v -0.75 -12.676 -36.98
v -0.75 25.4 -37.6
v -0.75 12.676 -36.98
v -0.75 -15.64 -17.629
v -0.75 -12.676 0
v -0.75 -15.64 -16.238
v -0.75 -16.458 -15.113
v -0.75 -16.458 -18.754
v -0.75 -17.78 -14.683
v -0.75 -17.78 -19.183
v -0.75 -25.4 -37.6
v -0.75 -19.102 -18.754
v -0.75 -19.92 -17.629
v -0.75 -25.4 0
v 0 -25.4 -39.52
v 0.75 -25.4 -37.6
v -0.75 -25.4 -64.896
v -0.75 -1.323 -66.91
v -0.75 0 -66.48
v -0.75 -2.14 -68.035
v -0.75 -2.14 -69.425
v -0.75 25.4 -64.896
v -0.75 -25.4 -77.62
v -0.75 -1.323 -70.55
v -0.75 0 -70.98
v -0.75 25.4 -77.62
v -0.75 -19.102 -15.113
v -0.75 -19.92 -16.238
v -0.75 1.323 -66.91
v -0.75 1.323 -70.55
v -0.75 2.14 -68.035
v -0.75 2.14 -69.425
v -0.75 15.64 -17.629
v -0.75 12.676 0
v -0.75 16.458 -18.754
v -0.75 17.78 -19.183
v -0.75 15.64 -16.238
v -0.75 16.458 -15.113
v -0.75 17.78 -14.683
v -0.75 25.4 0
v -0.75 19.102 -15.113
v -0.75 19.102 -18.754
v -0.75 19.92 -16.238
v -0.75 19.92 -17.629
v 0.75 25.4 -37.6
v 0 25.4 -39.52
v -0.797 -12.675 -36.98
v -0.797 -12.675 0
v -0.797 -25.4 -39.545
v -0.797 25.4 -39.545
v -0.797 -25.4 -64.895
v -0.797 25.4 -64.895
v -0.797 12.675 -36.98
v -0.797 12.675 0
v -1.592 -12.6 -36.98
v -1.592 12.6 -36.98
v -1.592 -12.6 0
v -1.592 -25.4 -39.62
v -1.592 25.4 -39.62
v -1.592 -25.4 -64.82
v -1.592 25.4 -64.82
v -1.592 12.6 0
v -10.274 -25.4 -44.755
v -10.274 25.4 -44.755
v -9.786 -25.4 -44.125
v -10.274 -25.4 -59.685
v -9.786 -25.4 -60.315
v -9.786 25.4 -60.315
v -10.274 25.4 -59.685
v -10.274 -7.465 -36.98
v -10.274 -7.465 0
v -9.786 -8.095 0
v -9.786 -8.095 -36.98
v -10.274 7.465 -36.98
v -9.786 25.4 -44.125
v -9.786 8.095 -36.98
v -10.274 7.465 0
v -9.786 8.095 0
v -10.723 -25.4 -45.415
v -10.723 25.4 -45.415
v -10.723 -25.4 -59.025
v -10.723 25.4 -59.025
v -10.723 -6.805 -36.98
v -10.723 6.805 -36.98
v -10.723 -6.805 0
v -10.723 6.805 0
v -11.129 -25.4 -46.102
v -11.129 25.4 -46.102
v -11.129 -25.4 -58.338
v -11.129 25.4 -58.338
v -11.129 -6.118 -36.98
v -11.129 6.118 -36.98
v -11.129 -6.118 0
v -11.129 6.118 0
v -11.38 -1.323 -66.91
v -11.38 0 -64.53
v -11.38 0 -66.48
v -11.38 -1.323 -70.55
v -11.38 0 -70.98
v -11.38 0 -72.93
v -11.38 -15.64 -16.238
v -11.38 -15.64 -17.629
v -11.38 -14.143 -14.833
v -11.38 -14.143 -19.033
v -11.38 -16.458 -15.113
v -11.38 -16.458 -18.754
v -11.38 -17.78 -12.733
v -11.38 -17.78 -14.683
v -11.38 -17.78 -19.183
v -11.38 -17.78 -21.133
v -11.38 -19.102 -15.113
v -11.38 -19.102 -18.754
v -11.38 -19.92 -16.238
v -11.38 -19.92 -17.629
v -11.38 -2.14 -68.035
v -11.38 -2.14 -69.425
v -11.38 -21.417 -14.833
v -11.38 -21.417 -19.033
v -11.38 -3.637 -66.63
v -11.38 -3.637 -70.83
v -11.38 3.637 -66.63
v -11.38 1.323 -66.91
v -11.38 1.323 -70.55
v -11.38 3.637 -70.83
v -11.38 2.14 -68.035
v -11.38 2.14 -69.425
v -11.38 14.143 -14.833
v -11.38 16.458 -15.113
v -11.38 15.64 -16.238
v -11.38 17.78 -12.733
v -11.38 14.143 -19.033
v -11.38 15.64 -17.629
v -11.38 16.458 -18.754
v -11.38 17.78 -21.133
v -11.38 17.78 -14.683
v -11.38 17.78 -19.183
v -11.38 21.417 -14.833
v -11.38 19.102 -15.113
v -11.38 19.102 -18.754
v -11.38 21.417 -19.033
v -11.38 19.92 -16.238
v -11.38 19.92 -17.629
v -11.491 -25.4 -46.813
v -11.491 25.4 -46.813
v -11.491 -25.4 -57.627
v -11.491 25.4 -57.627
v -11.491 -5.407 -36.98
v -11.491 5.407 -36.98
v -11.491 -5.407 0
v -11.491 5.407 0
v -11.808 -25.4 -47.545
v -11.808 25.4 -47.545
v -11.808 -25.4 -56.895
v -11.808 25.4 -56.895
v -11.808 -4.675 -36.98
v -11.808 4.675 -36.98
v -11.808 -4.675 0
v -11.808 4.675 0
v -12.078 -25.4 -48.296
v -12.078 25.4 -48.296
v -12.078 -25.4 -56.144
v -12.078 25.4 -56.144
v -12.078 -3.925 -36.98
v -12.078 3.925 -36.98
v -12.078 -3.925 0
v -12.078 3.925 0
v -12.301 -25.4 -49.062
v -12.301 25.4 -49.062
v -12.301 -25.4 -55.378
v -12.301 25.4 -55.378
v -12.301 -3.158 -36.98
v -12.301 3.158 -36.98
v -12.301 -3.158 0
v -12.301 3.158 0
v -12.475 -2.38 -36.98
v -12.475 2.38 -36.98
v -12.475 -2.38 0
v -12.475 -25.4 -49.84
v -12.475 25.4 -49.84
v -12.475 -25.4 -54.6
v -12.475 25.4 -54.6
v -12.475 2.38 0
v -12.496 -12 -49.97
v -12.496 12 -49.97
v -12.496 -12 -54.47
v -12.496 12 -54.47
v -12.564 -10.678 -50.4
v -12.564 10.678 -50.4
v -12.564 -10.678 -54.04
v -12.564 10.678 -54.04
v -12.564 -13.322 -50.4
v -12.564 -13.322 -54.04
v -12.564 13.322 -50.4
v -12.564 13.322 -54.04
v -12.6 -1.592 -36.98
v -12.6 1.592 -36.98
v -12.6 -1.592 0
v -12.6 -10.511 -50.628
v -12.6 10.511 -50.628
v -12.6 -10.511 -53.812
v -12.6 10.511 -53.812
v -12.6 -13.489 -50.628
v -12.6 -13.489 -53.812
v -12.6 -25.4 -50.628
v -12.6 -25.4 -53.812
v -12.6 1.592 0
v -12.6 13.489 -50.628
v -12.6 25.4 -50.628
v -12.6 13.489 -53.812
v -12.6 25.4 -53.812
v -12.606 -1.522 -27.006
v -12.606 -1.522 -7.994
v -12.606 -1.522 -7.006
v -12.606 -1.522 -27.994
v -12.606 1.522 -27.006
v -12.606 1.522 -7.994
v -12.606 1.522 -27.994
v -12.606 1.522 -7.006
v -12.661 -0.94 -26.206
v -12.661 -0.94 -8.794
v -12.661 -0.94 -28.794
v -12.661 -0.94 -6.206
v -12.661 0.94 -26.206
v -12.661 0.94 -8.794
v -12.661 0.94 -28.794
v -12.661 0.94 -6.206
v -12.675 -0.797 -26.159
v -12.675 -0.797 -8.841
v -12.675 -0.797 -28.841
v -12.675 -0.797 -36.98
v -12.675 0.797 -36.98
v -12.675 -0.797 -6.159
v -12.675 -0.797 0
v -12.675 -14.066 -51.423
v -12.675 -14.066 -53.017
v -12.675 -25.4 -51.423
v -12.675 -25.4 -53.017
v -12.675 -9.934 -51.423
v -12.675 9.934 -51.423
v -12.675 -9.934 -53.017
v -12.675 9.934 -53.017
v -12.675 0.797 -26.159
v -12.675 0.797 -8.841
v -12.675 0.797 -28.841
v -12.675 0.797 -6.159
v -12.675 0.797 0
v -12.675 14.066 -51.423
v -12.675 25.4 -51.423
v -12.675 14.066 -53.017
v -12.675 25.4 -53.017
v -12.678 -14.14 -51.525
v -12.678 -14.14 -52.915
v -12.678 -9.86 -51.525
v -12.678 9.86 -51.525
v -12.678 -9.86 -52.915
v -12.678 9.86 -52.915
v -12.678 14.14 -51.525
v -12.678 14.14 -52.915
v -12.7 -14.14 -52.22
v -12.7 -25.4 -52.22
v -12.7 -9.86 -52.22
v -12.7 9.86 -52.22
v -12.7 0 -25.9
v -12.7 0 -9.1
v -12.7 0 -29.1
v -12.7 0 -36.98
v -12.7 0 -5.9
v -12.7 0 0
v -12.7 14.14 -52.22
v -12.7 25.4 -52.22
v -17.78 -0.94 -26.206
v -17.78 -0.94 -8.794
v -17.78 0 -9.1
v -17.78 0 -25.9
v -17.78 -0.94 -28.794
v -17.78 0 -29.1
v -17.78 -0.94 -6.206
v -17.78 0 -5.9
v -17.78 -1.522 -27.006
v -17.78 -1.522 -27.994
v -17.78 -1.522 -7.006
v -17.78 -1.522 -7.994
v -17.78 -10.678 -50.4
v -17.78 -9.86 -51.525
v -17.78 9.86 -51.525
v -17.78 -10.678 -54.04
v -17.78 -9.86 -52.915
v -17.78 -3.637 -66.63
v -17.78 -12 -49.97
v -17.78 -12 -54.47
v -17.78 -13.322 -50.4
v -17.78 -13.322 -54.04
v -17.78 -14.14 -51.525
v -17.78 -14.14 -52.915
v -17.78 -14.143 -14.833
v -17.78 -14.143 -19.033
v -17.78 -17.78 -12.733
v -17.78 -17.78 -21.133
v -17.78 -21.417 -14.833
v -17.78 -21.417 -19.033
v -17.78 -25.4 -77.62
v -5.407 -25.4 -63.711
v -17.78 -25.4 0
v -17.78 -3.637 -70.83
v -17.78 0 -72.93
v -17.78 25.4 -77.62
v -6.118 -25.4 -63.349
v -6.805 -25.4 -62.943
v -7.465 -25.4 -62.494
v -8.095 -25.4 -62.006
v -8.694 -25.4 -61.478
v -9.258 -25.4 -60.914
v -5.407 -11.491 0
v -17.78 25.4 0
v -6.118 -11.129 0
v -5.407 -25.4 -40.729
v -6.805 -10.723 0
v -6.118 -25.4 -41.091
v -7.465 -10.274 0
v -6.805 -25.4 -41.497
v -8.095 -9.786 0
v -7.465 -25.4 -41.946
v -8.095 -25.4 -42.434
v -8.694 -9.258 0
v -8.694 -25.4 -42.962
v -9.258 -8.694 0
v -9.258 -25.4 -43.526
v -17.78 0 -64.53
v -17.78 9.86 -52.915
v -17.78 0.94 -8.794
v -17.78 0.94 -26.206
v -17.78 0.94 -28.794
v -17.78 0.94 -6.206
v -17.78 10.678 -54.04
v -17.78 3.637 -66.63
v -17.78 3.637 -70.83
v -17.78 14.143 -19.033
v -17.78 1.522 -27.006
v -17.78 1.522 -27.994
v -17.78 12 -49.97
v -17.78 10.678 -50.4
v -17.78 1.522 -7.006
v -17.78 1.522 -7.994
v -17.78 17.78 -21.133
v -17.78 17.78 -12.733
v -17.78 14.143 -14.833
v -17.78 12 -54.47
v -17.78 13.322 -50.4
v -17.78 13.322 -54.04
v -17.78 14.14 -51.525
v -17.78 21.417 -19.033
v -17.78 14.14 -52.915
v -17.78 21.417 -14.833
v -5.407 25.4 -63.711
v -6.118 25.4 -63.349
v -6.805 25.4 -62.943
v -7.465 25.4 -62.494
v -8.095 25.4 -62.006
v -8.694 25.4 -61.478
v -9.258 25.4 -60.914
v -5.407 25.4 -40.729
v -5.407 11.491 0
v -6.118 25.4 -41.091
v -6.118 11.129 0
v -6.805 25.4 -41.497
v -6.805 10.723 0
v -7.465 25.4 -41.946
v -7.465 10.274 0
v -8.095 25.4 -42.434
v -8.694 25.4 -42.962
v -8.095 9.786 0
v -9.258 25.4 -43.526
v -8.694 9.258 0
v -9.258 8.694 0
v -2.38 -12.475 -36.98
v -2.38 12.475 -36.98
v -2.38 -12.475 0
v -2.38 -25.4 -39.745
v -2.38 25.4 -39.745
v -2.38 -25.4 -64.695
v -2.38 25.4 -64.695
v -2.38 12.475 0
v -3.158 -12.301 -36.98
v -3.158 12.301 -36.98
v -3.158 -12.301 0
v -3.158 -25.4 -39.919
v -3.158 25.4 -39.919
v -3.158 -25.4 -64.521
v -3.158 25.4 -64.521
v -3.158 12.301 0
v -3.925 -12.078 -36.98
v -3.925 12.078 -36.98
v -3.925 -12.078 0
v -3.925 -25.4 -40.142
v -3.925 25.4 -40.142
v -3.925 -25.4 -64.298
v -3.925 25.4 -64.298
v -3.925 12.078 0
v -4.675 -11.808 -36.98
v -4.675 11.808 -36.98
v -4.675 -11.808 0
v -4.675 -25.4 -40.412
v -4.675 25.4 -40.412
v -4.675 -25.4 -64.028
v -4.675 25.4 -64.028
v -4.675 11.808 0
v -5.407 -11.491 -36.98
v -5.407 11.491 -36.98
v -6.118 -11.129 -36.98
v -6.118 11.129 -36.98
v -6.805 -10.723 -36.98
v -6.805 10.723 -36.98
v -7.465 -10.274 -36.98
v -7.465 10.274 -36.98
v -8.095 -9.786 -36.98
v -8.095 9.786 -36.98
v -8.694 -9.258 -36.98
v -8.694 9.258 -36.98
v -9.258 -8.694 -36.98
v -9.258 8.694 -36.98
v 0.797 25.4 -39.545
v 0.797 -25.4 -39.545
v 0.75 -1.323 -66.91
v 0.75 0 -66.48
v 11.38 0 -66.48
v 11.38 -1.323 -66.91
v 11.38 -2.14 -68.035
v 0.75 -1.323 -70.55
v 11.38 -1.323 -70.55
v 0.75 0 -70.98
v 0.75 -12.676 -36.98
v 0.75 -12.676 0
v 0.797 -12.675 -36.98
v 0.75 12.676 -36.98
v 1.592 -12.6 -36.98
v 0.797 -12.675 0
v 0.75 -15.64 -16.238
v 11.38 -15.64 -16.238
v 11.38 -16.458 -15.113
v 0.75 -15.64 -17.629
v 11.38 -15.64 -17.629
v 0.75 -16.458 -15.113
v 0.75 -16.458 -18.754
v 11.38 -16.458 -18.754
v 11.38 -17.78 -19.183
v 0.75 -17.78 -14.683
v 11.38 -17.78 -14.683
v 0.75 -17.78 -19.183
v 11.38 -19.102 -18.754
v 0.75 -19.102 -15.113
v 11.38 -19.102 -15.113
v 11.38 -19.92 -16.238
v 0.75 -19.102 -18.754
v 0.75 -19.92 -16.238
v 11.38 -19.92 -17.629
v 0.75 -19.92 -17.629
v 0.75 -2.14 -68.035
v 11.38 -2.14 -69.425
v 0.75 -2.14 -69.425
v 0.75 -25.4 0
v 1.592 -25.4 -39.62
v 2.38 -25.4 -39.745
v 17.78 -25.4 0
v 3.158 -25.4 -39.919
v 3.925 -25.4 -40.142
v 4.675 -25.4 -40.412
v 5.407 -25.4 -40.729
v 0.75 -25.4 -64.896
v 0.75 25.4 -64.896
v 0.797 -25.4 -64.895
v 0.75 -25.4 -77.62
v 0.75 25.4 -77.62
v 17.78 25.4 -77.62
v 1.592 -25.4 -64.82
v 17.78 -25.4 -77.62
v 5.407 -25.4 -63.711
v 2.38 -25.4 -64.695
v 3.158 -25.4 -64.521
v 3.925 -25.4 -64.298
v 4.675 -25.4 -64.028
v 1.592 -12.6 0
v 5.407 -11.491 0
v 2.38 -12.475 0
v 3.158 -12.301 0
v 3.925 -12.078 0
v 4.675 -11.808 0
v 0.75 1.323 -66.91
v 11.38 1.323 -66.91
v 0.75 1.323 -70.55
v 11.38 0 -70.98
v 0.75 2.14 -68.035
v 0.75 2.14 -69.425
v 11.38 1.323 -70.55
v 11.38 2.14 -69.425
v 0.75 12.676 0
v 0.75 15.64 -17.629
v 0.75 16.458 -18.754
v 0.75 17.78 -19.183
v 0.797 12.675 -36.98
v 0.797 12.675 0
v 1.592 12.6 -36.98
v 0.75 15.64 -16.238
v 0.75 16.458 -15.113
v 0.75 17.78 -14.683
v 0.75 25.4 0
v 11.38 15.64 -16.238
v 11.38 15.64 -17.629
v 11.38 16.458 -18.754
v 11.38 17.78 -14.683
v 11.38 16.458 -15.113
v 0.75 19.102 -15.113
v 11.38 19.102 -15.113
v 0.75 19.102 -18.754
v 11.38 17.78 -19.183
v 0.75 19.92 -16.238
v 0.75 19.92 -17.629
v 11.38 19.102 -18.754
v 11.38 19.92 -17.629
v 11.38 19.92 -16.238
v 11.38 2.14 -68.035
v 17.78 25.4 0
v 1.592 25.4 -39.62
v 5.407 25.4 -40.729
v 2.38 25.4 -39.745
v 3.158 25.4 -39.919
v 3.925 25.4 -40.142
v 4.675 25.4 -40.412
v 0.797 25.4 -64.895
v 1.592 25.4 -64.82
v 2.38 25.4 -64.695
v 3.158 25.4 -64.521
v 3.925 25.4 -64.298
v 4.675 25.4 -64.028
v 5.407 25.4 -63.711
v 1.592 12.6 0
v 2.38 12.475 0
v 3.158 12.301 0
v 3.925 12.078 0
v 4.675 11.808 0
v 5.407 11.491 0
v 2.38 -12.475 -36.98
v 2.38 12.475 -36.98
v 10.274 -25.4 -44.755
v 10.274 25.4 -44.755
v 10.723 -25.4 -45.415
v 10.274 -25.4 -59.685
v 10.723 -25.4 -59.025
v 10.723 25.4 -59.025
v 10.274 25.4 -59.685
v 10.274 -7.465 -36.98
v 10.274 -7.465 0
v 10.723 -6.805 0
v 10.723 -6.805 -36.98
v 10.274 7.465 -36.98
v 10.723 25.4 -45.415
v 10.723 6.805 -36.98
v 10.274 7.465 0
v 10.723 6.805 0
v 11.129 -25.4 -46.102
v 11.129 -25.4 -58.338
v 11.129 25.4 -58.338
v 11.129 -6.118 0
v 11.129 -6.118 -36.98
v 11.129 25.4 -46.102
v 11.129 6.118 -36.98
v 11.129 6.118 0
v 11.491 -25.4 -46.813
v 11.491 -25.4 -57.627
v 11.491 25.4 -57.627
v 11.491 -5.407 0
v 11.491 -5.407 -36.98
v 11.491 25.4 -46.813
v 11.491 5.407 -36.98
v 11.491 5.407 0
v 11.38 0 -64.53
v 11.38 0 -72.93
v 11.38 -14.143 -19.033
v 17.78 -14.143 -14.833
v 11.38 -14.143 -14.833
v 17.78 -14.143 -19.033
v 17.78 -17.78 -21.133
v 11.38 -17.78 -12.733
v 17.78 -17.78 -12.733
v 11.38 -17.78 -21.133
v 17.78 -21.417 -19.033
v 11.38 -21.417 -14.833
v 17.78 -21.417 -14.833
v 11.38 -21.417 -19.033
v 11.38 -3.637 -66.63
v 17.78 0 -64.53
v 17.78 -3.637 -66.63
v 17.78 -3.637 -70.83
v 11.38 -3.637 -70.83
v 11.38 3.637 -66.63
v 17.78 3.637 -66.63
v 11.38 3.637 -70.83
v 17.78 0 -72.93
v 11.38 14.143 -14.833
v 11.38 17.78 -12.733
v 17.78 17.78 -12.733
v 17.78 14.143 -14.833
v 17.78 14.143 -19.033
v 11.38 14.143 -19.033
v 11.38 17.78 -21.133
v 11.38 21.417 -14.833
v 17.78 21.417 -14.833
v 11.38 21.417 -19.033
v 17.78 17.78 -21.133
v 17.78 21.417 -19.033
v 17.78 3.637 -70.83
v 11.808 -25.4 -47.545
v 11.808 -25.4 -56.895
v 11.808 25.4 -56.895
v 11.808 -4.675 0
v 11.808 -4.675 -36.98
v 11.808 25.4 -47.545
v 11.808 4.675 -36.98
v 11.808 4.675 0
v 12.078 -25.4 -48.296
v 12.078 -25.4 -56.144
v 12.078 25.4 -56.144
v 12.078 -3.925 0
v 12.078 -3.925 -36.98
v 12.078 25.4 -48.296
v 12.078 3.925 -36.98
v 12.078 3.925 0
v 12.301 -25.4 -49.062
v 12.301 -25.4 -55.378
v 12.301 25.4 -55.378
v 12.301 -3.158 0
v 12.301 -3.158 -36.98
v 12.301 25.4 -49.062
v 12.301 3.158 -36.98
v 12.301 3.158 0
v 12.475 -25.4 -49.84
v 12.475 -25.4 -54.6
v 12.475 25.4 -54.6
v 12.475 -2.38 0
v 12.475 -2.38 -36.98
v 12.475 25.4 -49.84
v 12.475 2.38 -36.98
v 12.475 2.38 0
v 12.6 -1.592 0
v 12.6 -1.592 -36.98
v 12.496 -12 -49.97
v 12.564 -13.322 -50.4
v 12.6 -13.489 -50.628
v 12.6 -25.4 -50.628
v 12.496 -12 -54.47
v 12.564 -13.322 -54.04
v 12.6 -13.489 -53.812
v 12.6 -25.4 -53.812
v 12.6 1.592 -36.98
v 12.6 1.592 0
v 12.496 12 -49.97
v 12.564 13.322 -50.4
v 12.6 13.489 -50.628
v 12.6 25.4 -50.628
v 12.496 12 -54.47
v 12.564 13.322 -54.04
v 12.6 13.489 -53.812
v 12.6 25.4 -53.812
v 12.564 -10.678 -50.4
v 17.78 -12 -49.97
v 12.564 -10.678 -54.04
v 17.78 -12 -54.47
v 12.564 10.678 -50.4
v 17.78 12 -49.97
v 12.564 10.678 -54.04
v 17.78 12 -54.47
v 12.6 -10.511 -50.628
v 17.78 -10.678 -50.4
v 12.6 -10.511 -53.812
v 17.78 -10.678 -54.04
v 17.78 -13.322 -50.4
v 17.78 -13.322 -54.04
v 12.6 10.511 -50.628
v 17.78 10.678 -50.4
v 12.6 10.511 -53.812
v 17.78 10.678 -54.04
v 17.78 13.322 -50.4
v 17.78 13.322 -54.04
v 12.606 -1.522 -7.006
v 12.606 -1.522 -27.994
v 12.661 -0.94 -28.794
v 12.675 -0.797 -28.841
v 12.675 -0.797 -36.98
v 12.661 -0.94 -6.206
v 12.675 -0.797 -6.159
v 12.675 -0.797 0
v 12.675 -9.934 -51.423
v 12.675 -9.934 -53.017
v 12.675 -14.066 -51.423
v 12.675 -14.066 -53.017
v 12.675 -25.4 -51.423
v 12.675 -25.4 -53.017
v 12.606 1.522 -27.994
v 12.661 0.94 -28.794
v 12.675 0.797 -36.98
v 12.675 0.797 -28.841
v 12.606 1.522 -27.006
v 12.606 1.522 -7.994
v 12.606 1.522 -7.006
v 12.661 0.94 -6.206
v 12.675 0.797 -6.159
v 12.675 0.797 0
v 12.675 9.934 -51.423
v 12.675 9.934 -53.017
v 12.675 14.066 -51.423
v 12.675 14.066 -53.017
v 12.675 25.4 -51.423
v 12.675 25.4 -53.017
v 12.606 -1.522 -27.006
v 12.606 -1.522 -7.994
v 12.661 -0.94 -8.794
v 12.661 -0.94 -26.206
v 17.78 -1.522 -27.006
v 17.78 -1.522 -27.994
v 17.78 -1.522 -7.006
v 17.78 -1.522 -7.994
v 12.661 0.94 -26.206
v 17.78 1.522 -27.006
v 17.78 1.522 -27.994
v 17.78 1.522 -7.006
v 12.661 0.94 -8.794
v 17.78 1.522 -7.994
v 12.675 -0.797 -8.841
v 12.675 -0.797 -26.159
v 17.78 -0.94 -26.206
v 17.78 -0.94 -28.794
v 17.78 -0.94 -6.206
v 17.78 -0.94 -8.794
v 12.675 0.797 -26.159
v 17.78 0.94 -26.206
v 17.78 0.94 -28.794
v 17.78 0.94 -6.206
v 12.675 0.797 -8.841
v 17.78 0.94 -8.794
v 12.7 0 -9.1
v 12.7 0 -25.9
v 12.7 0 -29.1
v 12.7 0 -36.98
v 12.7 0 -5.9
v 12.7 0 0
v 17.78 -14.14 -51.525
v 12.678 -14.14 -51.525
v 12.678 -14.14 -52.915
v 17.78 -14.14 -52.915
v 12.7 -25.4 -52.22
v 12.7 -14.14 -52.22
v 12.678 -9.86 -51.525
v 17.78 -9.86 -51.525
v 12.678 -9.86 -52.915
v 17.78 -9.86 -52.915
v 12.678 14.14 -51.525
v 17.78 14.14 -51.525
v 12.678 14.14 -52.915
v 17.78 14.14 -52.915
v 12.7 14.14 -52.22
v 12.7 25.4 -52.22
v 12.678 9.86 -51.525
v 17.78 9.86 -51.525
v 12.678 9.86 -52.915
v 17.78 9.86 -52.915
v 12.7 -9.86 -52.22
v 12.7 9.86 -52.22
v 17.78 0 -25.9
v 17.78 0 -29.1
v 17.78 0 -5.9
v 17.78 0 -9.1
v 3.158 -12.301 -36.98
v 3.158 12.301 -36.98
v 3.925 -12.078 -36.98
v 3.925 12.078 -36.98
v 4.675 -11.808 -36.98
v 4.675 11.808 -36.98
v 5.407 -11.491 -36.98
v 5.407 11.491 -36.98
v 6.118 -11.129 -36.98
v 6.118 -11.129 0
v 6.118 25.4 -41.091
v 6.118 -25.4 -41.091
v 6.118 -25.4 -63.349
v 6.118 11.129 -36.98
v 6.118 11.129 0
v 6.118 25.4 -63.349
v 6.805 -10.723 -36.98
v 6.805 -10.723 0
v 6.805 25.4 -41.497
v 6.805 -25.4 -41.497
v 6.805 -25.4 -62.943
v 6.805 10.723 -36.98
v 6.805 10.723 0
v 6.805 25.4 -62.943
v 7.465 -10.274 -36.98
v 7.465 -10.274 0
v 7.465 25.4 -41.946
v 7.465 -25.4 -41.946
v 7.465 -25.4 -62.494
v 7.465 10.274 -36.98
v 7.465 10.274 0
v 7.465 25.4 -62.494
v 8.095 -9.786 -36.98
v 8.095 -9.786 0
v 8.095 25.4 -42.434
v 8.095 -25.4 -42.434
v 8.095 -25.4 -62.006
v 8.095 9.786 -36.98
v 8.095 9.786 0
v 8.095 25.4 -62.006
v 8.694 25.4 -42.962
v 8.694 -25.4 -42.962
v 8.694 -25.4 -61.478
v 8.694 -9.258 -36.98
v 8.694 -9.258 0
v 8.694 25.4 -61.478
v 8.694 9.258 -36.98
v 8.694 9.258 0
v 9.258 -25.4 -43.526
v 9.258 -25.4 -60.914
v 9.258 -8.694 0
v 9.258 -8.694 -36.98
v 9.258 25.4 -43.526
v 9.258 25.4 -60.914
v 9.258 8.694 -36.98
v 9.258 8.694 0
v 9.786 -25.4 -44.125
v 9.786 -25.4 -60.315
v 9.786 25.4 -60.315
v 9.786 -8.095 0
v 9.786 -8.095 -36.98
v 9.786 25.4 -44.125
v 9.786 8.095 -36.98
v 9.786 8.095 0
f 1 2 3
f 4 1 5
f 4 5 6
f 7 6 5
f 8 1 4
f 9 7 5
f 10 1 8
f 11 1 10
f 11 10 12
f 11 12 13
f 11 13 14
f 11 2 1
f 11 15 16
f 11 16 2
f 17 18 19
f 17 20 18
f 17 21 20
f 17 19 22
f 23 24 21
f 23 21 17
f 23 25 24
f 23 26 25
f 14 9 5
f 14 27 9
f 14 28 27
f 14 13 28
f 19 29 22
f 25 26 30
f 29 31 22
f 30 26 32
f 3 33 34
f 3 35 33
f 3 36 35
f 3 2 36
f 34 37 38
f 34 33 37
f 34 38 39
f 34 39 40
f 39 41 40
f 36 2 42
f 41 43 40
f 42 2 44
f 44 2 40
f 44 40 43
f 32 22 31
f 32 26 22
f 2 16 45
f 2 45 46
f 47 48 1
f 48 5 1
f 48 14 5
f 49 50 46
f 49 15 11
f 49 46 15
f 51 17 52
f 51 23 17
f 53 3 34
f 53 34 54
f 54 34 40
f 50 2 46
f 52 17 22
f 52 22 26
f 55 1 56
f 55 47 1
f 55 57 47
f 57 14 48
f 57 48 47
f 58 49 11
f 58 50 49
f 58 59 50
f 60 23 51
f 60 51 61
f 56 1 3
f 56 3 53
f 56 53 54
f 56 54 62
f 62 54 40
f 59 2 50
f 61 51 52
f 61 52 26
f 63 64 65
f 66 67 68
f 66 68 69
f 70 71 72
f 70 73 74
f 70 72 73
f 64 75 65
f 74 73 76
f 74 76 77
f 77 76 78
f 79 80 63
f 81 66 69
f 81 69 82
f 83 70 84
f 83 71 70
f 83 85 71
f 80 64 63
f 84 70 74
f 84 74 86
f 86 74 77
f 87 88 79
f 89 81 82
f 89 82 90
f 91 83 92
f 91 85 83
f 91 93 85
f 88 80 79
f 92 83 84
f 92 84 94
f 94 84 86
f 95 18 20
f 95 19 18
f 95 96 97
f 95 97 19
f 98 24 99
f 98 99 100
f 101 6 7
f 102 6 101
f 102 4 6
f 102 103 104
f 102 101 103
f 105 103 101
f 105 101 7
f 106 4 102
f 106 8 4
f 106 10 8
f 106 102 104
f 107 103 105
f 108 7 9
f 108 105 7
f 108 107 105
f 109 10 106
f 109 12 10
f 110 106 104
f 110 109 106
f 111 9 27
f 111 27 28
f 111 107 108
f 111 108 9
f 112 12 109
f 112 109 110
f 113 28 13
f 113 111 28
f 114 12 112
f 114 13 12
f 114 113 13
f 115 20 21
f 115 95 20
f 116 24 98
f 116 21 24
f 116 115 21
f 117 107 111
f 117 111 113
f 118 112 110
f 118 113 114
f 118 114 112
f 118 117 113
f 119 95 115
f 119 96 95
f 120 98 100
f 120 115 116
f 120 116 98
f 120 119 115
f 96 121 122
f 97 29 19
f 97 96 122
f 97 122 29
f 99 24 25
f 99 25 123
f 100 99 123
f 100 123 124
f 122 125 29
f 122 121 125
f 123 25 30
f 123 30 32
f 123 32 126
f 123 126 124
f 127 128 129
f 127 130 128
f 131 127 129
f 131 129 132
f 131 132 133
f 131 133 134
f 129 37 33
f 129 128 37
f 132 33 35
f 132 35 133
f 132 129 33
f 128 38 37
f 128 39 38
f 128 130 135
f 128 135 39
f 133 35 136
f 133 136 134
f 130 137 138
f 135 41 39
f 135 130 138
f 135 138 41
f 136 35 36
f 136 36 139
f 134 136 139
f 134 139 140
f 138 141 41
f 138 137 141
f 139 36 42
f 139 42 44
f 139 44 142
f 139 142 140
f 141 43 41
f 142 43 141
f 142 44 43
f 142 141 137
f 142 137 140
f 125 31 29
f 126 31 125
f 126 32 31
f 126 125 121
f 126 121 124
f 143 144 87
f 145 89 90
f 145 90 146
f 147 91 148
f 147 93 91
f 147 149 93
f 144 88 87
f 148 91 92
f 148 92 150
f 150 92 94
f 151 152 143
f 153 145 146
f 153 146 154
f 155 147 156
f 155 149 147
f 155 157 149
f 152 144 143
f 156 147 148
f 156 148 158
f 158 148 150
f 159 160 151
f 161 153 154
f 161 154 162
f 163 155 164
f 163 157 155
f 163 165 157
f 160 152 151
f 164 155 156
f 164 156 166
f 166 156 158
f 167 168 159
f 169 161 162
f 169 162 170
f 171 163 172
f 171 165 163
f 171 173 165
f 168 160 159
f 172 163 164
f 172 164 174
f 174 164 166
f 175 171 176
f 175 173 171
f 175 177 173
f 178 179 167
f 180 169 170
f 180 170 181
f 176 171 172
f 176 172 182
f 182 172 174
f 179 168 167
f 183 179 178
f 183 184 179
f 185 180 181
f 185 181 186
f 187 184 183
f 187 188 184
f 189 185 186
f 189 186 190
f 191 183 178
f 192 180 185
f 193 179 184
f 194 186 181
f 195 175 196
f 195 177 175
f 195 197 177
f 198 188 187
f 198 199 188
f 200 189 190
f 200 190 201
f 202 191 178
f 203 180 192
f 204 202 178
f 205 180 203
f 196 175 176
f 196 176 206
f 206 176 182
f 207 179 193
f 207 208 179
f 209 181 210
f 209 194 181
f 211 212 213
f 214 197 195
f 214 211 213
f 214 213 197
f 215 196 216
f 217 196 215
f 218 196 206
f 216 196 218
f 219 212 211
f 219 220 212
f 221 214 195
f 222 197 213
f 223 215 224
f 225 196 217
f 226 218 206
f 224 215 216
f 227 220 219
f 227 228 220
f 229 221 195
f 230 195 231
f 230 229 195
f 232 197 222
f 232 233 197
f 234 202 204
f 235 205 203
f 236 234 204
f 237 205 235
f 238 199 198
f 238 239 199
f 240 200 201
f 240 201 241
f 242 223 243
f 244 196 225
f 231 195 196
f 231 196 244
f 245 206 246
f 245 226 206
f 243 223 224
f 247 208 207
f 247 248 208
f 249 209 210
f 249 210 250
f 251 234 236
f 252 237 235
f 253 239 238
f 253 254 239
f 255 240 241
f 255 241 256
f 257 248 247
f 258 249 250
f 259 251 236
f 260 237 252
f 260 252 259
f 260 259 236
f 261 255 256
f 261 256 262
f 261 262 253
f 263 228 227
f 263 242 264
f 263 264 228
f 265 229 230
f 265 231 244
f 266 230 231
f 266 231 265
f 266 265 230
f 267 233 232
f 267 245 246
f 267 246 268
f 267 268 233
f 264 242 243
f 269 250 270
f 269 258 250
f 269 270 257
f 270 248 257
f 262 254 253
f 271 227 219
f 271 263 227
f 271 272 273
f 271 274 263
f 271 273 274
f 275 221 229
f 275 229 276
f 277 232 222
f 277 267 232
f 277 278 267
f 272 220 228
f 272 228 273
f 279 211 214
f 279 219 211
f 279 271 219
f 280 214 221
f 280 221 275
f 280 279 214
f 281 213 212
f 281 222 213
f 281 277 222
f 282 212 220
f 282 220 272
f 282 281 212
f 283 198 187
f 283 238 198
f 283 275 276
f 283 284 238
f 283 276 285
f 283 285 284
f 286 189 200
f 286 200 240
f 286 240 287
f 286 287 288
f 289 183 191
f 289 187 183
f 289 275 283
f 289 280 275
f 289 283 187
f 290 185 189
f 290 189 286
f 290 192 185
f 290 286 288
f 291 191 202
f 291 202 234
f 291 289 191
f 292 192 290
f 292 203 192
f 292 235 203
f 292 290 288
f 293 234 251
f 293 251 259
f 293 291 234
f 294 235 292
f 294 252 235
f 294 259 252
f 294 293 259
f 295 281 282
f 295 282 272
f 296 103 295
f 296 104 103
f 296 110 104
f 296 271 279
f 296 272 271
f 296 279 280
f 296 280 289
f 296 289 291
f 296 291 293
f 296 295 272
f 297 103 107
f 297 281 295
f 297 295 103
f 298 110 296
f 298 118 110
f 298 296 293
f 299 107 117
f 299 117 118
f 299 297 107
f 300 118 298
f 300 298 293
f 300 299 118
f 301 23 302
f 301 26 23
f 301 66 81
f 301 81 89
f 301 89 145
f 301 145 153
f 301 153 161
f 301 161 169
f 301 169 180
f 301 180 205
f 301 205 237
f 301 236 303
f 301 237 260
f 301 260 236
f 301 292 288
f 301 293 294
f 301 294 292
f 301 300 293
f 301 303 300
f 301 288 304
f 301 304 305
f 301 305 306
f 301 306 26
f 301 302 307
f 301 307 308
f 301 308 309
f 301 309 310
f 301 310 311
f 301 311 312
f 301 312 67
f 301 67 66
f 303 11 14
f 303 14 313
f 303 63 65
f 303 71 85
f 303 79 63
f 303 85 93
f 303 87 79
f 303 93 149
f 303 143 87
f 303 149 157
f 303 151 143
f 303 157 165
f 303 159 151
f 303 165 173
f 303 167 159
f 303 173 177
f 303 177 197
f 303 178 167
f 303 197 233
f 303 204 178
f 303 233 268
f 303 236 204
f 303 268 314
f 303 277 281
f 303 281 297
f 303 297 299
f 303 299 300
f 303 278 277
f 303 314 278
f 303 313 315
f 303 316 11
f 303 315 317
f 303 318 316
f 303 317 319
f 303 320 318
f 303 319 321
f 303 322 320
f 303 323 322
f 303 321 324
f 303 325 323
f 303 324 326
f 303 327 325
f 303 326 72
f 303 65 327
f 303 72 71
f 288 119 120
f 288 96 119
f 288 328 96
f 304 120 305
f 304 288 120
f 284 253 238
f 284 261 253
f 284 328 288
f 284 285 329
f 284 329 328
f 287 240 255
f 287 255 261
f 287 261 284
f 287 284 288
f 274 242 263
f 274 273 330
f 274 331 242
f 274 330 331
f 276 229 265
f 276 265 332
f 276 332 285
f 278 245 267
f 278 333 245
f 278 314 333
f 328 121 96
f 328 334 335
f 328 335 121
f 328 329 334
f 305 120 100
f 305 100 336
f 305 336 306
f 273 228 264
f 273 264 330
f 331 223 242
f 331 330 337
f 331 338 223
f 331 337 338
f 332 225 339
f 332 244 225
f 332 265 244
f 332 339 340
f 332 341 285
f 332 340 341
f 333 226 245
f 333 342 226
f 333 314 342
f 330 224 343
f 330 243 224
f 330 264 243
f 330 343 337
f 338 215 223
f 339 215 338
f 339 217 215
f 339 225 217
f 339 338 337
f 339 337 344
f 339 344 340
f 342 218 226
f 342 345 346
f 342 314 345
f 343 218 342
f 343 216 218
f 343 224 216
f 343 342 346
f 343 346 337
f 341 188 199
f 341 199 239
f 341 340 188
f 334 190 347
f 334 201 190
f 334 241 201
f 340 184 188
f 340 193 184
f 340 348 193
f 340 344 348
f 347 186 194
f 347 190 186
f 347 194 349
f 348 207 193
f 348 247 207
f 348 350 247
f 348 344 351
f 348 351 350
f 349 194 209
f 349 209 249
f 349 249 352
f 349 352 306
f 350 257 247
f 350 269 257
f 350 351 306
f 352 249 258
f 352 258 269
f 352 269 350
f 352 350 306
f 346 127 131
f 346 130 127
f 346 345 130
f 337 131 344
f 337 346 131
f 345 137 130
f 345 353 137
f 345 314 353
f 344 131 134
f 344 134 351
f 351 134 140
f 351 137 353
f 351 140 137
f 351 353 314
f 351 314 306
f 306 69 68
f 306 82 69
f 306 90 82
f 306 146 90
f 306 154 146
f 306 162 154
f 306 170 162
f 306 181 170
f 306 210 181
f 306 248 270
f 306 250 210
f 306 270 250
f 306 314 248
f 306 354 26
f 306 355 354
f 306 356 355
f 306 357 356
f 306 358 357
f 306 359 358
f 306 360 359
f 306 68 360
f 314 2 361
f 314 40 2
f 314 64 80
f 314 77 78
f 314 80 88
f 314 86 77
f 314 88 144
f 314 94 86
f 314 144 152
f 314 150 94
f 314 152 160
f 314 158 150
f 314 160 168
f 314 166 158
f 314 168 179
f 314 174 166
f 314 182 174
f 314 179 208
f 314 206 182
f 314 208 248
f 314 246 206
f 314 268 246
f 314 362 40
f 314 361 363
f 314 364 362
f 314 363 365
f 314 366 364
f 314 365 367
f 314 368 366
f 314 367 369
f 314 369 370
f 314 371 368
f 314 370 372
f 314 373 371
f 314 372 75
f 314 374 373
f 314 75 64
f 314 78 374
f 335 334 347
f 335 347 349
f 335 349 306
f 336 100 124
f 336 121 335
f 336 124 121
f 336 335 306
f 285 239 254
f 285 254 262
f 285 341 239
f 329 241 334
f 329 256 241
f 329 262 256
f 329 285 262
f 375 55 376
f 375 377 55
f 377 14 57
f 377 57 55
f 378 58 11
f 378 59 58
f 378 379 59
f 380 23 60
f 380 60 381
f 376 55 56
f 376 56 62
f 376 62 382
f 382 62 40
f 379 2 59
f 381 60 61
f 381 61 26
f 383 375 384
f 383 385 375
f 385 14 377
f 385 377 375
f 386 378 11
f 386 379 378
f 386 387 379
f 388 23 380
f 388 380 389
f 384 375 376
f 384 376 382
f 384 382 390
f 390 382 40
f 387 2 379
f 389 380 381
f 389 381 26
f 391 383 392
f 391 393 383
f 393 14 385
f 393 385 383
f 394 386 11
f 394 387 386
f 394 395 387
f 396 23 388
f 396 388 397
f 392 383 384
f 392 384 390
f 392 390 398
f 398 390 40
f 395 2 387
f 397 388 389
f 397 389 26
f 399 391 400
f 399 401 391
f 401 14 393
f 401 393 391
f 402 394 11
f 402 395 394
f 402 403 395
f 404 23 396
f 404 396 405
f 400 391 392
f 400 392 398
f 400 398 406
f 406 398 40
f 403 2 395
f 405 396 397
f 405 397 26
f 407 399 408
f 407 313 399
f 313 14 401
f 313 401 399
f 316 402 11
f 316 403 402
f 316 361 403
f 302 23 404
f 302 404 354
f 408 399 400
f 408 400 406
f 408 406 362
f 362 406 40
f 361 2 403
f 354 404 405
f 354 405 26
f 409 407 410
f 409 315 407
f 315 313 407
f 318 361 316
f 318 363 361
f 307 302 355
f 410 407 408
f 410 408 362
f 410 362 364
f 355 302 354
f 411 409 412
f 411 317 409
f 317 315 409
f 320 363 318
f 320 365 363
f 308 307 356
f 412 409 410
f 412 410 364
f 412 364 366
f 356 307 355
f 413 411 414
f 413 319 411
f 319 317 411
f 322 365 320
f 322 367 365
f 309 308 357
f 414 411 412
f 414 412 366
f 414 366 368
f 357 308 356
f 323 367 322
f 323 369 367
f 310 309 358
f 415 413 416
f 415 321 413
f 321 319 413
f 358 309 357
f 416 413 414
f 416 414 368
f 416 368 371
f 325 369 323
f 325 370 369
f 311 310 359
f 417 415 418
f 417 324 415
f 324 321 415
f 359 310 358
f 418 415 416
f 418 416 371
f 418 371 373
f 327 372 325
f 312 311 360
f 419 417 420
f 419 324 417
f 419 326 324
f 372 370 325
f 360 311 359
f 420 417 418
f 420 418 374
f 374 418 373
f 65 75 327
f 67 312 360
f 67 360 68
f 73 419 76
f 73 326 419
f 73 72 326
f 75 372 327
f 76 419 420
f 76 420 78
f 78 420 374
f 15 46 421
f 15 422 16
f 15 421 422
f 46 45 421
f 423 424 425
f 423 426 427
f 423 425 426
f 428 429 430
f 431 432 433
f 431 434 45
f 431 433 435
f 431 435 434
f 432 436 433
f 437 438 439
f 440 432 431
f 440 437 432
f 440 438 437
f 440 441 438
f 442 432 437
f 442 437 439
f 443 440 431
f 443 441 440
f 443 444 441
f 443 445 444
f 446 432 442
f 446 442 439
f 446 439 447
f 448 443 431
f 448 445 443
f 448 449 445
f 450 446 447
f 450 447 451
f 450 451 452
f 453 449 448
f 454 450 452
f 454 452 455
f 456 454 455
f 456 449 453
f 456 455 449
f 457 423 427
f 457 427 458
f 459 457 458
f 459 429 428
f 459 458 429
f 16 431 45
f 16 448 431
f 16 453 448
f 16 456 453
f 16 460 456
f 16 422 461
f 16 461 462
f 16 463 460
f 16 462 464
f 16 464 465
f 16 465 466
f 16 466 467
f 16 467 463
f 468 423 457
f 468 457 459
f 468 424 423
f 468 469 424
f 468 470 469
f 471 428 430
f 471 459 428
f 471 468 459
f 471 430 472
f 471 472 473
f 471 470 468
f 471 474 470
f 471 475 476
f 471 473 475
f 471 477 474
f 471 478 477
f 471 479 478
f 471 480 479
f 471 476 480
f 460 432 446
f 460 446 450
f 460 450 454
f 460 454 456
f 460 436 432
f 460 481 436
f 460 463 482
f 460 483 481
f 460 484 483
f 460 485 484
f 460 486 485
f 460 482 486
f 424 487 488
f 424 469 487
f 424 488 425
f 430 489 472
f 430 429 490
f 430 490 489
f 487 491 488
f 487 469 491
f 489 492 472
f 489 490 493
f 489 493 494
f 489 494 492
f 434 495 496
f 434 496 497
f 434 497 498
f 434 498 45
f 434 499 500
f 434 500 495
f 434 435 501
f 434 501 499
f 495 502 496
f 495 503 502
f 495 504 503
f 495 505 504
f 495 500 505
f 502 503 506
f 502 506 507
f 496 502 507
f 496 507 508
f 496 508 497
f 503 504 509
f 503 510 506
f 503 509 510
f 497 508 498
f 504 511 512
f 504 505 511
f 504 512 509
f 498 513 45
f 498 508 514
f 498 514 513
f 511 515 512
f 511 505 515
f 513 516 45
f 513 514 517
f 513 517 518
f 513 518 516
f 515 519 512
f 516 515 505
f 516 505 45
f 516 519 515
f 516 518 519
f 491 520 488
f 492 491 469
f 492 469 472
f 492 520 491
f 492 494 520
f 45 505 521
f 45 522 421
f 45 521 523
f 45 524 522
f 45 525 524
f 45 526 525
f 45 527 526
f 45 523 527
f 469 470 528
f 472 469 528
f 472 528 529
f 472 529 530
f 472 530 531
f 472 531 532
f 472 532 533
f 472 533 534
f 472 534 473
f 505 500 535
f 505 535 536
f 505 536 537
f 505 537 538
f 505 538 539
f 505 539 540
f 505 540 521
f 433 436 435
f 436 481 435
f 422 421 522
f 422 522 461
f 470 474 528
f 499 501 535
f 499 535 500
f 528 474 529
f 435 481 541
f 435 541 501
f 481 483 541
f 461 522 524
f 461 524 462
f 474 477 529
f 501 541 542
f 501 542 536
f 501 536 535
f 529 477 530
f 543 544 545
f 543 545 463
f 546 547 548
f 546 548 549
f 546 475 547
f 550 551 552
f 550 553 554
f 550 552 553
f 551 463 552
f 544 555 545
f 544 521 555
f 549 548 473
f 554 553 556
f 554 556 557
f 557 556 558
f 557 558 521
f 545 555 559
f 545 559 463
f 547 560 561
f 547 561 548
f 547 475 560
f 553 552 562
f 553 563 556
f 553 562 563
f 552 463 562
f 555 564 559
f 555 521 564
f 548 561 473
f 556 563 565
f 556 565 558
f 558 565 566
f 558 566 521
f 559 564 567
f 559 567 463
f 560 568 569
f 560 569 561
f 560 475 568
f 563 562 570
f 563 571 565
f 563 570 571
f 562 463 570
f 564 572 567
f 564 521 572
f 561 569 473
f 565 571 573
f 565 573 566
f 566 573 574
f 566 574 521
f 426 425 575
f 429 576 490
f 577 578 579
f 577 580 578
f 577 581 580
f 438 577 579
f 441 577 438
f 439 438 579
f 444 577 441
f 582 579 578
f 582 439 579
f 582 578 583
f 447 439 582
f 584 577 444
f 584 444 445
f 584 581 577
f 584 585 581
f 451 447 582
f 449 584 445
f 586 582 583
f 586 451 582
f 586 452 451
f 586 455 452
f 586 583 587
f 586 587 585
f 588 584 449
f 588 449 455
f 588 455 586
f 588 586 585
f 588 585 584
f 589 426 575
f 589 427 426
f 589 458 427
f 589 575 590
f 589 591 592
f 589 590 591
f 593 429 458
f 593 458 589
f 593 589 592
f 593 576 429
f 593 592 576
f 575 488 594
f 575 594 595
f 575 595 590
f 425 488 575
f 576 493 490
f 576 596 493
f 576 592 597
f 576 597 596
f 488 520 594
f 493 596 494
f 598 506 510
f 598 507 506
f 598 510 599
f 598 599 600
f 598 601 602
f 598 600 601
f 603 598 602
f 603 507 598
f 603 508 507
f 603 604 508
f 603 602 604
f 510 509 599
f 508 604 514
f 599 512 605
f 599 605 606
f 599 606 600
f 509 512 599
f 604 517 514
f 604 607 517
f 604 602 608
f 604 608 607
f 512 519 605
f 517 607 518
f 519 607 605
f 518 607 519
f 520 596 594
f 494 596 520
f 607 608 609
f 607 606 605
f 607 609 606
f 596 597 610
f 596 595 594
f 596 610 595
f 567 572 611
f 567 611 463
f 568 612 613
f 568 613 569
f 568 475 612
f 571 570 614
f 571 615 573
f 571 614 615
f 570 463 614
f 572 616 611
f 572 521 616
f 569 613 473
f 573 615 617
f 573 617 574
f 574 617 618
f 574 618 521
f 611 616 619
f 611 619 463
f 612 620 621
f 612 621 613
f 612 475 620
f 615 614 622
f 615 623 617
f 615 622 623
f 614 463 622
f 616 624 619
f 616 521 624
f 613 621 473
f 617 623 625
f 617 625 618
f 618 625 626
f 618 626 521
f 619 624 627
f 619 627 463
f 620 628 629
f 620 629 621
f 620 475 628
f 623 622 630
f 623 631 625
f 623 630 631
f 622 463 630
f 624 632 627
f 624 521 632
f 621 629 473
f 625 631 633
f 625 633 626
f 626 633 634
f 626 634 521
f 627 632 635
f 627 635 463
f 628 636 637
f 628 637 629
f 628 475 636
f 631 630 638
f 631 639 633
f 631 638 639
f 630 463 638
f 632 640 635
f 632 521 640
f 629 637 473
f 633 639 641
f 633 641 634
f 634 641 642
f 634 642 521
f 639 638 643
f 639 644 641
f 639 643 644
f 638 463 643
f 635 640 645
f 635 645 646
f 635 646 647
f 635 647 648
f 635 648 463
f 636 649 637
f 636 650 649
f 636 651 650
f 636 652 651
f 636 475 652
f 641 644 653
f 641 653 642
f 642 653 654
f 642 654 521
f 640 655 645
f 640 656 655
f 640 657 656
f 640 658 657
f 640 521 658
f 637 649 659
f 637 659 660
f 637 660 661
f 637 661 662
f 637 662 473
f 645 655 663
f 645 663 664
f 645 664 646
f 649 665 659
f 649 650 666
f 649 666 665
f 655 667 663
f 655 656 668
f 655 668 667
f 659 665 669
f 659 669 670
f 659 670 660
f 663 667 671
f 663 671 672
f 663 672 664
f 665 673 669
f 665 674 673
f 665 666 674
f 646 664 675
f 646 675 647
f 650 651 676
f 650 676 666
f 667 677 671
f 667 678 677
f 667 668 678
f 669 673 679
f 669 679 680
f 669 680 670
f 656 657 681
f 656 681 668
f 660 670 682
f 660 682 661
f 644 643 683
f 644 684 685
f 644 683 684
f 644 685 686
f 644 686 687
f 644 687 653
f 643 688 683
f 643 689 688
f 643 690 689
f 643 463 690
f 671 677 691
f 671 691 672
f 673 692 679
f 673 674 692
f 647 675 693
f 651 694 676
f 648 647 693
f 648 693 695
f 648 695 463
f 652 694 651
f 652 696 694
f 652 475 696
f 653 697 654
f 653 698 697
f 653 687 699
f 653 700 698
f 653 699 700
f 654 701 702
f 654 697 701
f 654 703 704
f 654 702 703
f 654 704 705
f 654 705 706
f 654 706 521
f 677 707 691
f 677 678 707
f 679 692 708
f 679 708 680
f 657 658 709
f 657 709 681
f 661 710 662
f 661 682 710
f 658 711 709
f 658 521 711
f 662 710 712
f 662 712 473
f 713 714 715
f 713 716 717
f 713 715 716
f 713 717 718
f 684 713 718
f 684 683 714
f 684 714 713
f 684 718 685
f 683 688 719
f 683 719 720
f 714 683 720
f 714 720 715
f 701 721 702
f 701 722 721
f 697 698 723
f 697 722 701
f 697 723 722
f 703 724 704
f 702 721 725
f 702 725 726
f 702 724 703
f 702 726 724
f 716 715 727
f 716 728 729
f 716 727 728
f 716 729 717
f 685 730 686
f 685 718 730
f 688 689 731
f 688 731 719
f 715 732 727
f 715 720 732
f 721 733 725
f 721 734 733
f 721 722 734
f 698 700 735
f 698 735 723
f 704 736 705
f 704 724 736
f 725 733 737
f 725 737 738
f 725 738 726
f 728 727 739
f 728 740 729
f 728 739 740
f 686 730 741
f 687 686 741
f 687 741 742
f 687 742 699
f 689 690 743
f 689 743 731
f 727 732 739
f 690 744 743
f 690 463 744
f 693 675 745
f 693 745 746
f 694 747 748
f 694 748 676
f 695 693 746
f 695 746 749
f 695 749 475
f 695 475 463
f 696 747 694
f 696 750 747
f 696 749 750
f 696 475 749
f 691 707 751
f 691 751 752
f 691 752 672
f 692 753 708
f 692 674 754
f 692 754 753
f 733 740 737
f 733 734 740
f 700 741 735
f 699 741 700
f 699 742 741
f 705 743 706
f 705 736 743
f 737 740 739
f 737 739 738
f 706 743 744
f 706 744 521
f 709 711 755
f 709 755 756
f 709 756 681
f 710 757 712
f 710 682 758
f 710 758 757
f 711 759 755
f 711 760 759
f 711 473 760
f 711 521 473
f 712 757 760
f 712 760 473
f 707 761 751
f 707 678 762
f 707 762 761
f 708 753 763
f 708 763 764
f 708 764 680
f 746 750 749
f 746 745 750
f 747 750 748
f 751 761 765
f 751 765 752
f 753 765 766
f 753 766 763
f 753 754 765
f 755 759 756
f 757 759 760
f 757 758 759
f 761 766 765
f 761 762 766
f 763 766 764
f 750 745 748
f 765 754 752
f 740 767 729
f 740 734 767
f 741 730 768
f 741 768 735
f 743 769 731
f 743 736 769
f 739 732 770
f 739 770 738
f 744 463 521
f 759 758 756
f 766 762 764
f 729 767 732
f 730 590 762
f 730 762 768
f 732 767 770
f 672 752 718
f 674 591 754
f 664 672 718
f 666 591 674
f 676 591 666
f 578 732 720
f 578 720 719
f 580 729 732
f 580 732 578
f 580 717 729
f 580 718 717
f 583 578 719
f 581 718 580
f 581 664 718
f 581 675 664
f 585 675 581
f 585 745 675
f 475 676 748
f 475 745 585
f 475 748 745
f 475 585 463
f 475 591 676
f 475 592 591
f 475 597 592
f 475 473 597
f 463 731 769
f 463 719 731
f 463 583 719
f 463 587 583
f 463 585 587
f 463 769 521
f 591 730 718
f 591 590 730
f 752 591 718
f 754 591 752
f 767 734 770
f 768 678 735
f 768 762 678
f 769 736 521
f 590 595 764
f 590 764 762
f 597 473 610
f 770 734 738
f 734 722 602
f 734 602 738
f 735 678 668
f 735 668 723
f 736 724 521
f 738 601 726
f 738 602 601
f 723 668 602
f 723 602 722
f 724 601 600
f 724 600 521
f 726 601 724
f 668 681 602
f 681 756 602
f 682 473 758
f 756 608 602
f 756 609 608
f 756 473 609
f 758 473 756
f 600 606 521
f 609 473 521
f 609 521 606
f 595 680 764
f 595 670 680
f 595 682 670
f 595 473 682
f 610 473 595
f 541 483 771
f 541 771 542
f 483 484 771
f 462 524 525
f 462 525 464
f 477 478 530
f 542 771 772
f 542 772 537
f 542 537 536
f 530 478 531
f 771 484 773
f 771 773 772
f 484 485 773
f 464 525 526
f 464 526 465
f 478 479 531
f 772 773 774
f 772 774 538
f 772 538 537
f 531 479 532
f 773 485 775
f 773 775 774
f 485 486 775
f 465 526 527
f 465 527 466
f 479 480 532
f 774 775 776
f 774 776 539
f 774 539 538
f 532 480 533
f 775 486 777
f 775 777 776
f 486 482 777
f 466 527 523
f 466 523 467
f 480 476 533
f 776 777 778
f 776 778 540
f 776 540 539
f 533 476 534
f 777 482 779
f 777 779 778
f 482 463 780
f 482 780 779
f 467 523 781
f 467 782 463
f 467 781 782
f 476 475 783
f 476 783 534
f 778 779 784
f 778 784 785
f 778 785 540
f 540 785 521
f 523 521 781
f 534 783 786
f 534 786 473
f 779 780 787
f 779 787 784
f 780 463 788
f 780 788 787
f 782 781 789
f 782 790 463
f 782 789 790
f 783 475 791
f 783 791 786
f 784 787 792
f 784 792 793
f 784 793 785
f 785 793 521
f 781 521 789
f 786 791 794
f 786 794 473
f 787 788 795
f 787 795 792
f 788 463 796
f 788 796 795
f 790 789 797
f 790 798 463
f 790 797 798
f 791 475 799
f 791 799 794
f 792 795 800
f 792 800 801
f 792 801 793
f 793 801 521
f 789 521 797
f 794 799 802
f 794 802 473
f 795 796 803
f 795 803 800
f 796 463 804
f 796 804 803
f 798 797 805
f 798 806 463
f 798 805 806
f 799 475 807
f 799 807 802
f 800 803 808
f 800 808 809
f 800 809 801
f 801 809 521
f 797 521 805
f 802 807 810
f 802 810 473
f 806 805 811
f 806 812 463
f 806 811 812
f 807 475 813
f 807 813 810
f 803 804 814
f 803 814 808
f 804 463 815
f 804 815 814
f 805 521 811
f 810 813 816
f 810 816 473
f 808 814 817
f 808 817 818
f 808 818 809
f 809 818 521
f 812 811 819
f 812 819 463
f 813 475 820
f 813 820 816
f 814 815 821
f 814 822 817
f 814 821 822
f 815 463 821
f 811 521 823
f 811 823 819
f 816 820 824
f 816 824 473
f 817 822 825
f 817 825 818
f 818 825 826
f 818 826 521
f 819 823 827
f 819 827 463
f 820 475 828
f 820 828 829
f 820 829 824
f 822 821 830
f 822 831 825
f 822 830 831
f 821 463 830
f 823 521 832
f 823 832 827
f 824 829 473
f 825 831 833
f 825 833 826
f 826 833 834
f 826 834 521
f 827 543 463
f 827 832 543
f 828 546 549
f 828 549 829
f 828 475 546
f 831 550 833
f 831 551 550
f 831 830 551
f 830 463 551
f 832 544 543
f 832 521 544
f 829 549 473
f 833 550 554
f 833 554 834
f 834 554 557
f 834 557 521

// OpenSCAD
// file: ../lib/TextGenerator.scad
//Draw text
scale([4,4,4]) drawtext("Hello World!");

//Draw character set
//scale([2,2,2]) drawtext(" !\"#$%&'()*+,-./0123456789:;<=>?@ABCDEFGHIJKLMNOPQRSTUVWXYZ[\\]^_`abcdefghijklmnopqrstuvwxyz{|}");

module drawtext(text,center=false) {
	//Characters
	chars = " !\"#$%&'()*+,-./0123456789:;<=>?@ABCDEFGHIJKLMNOPQRSTUVWXYZ[\\]^_`abcdefghijklmnopqrstuvwxyz{|}";

	//Chracter table defining 5x7 characters
	//Adapted from: http://www.geocities.com/dinceraydin/djlcdsim/chartable.js
	char_table = [ [ 0, 0, 0, 0, 0, 0, 0],
                  [ 4, 0, 4, 4, 4, 4, 4],
                  [ 0, 0, 0, 0,10,10,10],
                  [10,10,31,10,31,10,10],
                  [ 4,30, 5,14,20,15, 4],
                  [ 3,19, 8, 4, 2,25,24],
                  [13,18,21, 8,20,18,12],
                  [ 0, 0, 0, 0, 8, 4,12],
                  [ 2, 4, 8, 8, 8, 4, 2],
                  [ 8, 4, 2, 2, 2, 4, 8],
                  [ 0, 4,21,14,21, 4, 0],
                  [ 0, 4, 4,31, 4, 4, 0],
                  [ 8, 4,12, 0, 0, 0, 0],
                  [ 0, 0, 0,31, 0, 0, 0],
                  [12,12, 0, 0, 0, 0, 0],
                  [ 0,16, 8, 4, 2, 1, 0],
                  [14,17,25,21,19,17,14],
                  [14, 4, 4, 4, 4,12, 4],
                  [31, 8, 4, 2, 1,17,14],
                  [14,17, 1, 2, 4, 2,31],
                  [ 2, 2,31,18,10, 6, 2],
                  [14,17, 1, 1,30,16,31],
                  [14,17,17,30,16, 8, 6],
                  [ 8, 8, 8, 4, 2, 1,31],
                  [14,17,17,14,17,17,14],
                  [12, 2, 1,15,17,17,14],
                  [ 0,12,12, 0,12,12, 0],
                  [ 8, 4,12, 0,12,12, 0],
                  [ 2, 4, 8,16, 8, 4, 2],
                  [ 0, 0,31, 0,31, 0, 0],
                  [16, 8, 4, 2, 4, 8,16],
                  [ 4, 0, 4, 2, 1,17,14],
                  [14,21,21,13, 1,17,14],
                  [17,17,31,17,17,17,14],
                  [30,17,17,30,17,17,30],
                  [14,17,16,16,16,17,14],
                  [30,17,17,17,17,17,30],
                  [31,16,16,30,16,16,31],
                  [16,16,16,30,16,16,31],
                  [15,17,17,23,16,17,14],
                  [17,17,17,31,17,17,17],
                  [14, 4, 4, 4, 4, 4,14],
                  [12,18, 2, 2, 2, 2, 7],
                  [17,18,20,24,20,18,17],
                  [31,16,16,16,16,16,16],
                  [17,17,17,21,21,27,17],
                  [17,17,19,21,25,17,17],
                  [14,17,17,17,17,17,14],
                  [16,16,16,30,17,17,30],
                  [13,18,21,17,17,17,14],
                  [17,18,20,30,17,17,30],
                  [30, 1, 1,14,16,16,15],
                  [ 4, 4, 4, 4, 4, 4,31],
                  [14,17,17,17,17,17,17],
                  [ 4,10,17,17,17,17,17],
                  [10,21,21,21,17,17,17],
                  [17,17,10, 4,10,17,17],
                  [ 4, 4, 4,10,17,17,17],
                  [31,16, 8, 4, 2, 1,31],
                  [14, 8, 8, 8, 8, 8,14],
                  [ 0, 1, 2, 4, 8,16, 0],
                  [14, 2, 2, 2, 2, 2,14],
                  [ 0, 0, 0, 0,17,10, 4],
                  [31, 0, 0, 0, 0, 0, 0],
                  [ 0, 0, 0, 0, 2, 4, 8],
                  [15,17,15, 1,14, 0, 0],
                  [30,17,17,25,22,16,16],
                  [14,17,16,16,14, 0, 0],
                  [15,17,17,19,13, 1, 1],
                  [14,16,31,17,14, 0, 0],
                  [ 8, 8, 8,28, 8, 9, 6],
                  [14, 1,15,17,15, 0, 0],
                  [17,17,17,25,22,16,16],
                  [14, 4, 4, 4,12, 0, 4],
                  [12,18, 2, 2, 2, 6, 2],
                  [18,20,24,20,18,16,16],
                  [14, 4, 4, 4, 4, 4,12],
                  [17,17,21,21,26, 0, 0],
                  [17,17,17,25,22, 0, 0],
                  [14,17,17,17,14, 0, 0],
                  [16,16,30,17,30, 0, 0],
                  [ 1, 1,15,19,13, 0, 0],
                  [16,16,16,25,22, 0, 0],
                  [30, 1,14,16,15, 0, 0],
                  [ 6, 9, 8, 8,28, 8, 8],
                  [13,19,17,17,17, 0, 0],
                  [ 4,10,17,17,17, 0, 0],
                  [10,21,21,17,17, 0, 0],
                  [17,10, 4,10,17, 0, 0],
                  [14, 1,15,17,17, 0, 0],
                  [31, 8, 4, 2,31, 0, 0],
                  [ 2, 4, 4, 8, 4, 4, 2],
                  [ 4, 4, 4, 4, 4, 4, 4],
                  [ 8, 4, 4, 2, 4, 4, 8] ];

	//Binary decode table
	dec_table = [ "00000", "00001", "00010", "00011", "00100", "00101",
  	            "00110", "00111", "01000", "01001", "01010", "01011",
  	            "01100", "01101", "01110", "01111", "10000", "10001",
  	            "10010", "10011", "10100", "10101", "10110", "10111",
	            "11000", "11001", "11010", "11011", "11100", "11101",
	            "11110", "11111" ];

    //Process string one character at a time
    for(itext = [0:len(text)-1]) {
        assign(length = len(text)) {
            //Convert character to index
            assign(ichar = search(text[itext],chars,1)[0]) {
                //Decode character - rows
                for(irow = [0:6]) {
                    assign(val = dec_table[char_table[ichar][irow]]) {
                        //Decode character - cols
                        for(icol = [0:4]) {
                            assign(bit = search(val[icol],"01",1)[0]) {
                                if(bit) {
                                    //Output cube
                                    if (center)
                                        translate([icol - 2.5 +
                                        (6*itext)-len(text)/2, irow-3.5,0])
                                            cube([1.0001,1.0001,1]);
                                    else {
                                        translate([icol + (6*itext), irow, 0])
                                            cube([1.0001,1.0001,1]);
                                    }
                                }
                            }
                        }
                    }
                }
            }
	}
}
}
// main file
include <../../Parameters.scad>

use <../666_1017.scad>

rotate([180,0,0])
666_1017_drillhelper();
